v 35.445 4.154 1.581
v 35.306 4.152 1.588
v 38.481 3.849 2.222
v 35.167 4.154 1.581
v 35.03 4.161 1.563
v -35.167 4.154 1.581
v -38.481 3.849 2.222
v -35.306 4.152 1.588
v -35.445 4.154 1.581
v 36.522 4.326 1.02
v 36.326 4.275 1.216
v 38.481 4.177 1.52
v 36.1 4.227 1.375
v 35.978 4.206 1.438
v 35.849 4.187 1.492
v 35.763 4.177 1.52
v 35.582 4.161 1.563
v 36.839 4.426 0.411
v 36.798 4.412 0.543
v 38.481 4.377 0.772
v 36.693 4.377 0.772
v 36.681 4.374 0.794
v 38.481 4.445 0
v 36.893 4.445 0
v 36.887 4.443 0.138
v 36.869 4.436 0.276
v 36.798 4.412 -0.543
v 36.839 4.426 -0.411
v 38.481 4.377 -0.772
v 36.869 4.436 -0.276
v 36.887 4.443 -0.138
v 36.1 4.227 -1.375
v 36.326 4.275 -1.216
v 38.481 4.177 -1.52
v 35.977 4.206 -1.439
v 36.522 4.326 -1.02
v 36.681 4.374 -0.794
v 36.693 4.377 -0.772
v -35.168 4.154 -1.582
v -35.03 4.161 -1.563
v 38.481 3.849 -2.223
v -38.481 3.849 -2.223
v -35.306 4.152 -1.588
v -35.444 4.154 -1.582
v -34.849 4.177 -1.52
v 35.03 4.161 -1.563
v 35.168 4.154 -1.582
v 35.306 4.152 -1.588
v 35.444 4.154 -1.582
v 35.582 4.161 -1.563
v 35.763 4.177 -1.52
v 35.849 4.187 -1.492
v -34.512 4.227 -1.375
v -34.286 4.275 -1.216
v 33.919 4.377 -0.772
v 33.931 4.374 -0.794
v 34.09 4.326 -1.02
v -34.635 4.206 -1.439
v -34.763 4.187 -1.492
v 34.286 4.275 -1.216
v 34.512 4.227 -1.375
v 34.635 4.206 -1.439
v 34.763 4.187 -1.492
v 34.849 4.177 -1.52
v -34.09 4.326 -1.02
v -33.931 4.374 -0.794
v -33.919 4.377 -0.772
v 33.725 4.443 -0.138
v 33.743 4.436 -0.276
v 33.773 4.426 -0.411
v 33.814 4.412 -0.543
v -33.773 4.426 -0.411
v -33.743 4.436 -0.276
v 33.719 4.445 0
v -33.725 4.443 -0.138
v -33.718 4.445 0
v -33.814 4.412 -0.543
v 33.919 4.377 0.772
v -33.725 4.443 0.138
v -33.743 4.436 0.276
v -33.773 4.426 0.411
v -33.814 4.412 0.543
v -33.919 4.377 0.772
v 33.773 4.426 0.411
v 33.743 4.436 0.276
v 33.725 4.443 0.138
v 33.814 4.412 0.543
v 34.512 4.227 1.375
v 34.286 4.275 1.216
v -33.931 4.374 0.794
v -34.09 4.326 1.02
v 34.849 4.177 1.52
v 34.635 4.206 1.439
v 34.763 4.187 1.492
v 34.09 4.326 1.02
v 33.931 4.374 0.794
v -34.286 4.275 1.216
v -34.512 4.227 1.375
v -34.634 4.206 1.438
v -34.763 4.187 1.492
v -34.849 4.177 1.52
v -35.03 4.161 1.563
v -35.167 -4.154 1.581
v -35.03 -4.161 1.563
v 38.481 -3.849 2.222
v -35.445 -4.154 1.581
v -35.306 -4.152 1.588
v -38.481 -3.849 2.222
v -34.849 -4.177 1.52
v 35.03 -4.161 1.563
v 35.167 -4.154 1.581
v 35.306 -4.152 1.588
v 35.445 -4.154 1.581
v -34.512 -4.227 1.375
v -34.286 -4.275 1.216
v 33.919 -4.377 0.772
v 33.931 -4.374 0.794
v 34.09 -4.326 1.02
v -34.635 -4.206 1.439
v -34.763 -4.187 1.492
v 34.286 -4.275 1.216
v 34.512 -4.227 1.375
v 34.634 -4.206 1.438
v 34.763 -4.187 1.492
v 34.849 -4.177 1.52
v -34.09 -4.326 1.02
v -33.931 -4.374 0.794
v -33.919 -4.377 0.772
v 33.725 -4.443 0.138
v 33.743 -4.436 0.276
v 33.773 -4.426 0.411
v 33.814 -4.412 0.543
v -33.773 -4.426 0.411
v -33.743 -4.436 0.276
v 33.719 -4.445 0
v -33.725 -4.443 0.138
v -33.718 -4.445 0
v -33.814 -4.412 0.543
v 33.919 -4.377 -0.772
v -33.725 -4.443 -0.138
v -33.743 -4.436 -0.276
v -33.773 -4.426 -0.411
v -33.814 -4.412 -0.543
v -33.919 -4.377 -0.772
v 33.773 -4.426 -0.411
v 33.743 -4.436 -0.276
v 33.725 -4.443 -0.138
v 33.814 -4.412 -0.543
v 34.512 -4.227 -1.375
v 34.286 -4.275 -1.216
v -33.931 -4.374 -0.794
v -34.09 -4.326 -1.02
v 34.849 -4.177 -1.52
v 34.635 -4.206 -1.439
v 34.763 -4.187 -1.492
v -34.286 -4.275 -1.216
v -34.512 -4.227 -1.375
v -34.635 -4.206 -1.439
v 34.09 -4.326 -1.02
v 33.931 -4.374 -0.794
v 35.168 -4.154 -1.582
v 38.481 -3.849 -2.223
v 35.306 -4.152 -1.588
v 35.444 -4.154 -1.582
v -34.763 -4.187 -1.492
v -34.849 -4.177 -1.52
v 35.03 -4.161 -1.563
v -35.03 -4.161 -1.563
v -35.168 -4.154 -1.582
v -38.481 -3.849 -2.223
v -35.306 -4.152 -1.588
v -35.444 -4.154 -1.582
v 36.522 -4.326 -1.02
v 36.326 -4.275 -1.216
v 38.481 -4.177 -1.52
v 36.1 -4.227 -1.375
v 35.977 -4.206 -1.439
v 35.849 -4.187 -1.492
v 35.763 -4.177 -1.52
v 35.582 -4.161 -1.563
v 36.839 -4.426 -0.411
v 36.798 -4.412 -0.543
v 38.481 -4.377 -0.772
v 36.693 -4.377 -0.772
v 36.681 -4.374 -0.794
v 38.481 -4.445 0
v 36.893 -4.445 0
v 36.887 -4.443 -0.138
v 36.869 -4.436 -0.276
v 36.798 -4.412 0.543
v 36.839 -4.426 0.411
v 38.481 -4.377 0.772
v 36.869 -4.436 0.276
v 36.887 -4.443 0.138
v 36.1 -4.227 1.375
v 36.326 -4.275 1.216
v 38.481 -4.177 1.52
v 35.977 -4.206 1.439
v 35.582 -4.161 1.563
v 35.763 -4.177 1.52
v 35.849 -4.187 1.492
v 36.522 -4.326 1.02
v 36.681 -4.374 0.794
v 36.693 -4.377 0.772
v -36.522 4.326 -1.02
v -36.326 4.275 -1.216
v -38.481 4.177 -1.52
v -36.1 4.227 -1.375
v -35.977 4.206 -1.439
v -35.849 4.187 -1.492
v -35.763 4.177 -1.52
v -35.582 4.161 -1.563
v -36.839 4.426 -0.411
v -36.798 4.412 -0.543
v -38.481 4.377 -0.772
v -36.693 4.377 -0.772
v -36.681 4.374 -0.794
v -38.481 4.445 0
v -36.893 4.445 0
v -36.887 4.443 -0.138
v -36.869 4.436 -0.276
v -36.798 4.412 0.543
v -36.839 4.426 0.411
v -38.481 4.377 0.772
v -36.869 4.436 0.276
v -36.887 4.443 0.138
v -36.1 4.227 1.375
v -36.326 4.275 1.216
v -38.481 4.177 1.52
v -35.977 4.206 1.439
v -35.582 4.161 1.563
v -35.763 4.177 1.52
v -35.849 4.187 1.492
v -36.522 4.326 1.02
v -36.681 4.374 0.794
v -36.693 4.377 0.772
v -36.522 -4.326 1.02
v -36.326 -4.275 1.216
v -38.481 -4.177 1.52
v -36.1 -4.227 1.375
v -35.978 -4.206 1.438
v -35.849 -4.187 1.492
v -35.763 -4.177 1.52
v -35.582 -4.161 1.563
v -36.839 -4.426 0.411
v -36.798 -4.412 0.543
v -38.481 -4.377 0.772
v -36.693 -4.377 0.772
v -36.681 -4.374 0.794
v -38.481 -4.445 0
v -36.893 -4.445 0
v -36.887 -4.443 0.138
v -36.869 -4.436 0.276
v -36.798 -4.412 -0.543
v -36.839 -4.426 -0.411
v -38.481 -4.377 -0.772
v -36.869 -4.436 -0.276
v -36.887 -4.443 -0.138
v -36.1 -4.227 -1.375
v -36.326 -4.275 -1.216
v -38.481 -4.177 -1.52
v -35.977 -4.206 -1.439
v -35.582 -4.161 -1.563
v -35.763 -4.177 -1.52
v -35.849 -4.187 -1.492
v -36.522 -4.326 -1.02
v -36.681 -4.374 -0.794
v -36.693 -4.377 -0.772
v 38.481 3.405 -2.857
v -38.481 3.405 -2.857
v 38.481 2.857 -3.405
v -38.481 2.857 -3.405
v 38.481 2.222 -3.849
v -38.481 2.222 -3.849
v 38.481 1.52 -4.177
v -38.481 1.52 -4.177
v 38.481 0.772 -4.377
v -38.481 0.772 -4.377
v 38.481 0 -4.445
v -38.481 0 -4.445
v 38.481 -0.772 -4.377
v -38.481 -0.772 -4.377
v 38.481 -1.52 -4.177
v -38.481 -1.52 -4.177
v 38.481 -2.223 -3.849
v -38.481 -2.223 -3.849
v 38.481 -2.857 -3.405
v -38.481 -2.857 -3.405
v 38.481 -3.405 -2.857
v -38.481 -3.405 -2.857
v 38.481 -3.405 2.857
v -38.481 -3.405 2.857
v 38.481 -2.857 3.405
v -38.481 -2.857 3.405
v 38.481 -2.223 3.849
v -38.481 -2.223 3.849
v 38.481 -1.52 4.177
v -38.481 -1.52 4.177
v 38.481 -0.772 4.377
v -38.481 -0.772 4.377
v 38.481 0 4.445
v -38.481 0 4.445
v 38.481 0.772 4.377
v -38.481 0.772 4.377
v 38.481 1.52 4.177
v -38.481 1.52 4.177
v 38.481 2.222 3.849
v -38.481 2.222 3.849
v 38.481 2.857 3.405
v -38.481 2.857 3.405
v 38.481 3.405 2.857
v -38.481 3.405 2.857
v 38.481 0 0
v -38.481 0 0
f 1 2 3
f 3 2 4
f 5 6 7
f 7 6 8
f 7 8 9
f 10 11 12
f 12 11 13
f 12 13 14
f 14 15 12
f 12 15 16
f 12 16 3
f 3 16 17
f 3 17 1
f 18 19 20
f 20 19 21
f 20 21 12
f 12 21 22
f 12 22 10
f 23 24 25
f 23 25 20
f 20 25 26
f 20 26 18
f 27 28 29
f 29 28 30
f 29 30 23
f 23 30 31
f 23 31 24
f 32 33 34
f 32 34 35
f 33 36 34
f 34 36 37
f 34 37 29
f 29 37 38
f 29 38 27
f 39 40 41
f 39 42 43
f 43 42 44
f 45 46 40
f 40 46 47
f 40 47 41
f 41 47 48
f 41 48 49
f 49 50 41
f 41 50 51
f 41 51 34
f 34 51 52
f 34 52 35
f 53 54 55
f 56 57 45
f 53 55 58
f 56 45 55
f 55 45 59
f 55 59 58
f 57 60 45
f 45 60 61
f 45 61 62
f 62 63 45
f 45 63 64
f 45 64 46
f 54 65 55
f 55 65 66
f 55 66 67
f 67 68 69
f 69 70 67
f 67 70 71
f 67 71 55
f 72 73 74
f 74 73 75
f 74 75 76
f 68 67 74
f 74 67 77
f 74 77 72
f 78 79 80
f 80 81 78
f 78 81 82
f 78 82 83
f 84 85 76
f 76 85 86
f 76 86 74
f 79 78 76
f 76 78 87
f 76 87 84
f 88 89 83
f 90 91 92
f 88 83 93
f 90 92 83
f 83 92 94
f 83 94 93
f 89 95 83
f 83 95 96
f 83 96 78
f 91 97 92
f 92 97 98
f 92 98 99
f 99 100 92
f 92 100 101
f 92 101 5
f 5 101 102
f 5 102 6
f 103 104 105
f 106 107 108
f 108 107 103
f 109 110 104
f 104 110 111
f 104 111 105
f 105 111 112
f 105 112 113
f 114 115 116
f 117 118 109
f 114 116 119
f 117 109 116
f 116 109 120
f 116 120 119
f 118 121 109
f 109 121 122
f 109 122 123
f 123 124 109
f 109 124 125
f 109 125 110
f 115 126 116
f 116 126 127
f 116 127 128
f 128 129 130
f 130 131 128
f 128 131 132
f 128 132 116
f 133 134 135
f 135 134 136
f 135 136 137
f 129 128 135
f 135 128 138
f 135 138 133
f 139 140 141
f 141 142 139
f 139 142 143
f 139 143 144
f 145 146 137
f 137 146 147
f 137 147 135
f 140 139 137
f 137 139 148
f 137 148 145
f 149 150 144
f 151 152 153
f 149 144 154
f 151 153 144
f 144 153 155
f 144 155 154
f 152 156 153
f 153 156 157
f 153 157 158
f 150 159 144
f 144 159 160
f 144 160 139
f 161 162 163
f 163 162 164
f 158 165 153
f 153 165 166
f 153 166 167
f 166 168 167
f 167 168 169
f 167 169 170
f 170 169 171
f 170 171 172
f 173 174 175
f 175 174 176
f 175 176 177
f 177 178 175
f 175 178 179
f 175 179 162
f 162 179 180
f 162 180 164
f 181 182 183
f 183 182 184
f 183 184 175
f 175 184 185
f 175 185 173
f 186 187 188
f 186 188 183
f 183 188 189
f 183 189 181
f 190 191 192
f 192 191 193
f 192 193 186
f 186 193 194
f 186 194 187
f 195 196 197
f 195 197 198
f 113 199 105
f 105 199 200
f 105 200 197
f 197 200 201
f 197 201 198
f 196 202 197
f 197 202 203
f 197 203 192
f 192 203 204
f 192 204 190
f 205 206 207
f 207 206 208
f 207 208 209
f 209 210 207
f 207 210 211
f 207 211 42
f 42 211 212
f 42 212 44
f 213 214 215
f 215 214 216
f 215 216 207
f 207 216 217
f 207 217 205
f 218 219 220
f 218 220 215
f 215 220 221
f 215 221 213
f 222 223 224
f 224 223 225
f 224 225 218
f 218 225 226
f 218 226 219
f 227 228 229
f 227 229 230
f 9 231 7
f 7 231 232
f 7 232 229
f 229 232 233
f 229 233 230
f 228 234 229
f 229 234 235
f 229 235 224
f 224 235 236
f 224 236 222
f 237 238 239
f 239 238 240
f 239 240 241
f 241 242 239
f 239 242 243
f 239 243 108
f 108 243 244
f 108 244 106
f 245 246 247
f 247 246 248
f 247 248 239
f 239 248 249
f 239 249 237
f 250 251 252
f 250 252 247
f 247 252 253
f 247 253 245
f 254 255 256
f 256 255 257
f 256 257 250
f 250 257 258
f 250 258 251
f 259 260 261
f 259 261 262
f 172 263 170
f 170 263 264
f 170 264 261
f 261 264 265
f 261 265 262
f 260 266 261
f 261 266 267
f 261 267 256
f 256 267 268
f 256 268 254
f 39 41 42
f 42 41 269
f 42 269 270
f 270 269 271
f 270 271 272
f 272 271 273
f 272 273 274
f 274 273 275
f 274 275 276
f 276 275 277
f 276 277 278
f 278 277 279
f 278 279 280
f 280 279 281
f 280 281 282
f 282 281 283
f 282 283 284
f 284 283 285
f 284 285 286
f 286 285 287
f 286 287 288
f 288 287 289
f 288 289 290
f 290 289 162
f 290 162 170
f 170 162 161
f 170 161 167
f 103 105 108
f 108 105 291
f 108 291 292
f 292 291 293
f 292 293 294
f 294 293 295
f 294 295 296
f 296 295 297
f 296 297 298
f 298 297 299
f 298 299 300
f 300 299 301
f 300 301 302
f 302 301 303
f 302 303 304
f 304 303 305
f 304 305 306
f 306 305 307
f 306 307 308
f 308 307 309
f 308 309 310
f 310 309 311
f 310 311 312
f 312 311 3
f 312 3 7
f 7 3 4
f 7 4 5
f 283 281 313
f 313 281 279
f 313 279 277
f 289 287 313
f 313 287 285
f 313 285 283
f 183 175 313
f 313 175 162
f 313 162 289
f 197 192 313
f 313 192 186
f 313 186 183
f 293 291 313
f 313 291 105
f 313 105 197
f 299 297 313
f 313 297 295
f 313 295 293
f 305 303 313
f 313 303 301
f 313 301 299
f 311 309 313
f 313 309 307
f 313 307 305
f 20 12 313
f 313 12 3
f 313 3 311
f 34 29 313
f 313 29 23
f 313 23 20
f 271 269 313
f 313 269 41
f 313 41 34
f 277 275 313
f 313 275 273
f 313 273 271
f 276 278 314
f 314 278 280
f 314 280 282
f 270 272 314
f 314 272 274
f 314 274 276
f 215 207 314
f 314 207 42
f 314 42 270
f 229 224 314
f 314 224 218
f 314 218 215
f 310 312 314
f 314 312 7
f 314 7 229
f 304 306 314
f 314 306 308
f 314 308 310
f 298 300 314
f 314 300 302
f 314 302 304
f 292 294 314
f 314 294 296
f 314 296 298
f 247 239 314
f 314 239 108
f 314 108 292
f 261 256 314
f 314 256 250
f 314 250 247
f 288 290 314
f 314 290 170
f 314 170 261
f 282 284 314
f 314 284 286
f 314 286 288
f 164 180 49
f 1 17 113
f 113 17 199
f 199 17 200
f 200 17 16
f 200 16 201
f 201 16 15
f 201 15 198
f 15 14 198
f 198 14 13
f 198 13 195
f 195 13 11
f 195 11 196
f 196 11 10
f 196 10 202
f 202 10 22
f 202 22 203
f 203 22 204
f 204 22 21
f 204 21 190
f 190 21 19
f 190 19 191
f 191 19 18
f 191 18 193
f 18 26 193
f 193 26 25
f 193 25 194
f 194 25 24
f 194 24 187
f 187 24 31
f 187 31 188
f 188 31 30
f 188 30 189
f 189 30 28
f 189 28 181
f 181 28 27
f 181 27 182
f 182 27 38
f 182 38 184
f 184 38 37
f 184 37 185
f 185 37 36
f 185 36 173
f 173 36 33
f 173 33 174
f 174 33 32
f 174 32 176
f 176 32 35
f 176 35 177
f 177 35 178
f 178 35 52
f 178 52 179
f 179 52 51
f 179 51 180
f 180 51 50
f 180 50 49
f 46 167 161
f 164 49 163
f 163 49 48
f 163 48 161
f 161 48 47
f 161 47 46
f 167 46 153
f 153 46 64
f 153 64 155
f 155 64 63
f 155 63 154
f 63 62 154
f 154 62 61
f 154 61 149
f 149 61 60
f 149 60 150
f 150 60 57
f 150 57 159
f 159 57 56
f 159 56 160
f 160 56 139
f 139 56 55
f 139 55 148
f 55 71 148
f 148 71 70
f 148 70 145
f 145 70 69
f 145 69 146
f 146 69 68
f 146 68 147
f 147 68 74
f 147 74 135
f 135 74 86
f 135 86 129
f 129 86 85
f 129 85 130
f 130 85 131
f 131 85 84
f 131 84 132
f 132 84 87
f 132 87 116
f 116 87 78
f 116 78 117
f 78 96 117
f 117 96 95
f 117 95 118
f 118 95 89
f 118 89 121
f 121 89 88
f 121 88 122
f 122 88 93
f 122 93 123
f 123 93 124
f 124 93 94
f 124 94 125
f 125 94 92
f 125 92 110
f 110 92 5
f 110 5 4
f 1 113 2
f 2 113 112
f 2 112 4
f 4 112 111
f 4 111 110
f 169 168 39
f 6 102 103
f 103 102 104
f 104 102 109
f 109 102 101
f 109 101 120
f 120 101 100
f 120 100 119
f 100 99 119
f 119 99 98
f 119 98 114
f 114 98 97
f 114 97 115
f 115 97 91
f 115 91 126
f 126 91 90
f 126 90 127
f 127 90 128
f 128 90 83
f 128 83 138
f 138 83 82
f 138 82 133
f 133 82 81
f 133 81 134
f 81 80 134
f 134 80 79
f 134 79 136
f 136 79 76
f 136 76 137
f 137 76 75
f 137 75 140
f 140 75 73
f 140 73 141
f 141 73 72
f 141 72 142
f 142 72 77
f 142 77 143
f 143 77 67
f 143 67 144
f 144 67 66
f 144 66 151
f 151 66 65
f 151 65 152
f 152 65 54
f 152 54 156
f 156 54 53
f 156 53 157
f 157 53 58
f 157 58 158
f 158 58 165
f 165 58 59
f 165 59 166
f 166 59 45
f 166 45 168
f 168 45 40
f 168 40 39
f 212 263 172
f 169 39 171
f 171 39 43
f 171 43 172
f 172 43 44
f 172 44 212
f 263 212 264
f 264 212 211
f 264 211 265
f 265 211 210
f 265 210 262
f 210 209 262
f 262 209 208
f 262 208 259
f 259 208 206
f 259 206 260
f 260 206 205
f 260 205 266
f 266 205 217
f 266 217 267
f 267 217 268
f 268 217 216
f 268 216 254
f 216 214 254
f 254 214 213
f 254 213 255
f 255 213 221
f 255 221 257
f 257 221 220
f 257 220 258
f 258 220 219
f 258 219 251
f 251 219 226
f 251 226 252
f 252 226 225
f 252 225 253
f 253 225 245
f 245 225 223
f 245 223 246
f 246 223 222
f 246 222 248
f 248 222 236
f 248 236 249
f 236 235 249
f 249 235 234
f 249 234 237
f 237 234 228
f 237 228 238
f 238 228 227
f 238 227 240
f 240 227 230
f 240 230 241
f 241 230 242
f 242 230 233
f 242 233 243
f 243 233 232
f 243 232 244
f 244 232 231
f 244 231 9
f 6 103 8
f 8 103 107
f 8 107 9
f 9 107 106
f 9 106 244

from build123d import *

# Parameters (mm, degrees)
SKETCH1_R               = 4.445
BOSS_EXTRUDE1_DEPTH     = 38.481
SKETCH2_R               = 1.5875
CUT_EXTRUDE1_DEPTH      = 5.445
CUT_EXTRUDE1_DEPTH_BACK = 5.445


with BuildPart() as part:
    # Sketch1 → Boss-Extrude1 (new body, symmetric)
    with BuildSketch(Plane(origin=(0, 0, 0), x_dir=(0, 0, -1), z_dir=(1, 0, 0))):
        Circle(SKETCH1_R)
    extrude(amount=BOSS_EXTRUDE1_DEPTH, both=True)

    # Sketch2 → Cut-Extrude1 (cut, two sides)
    with BuildSketch(Plane(origin=(0, 0, 0), x_dir=(1, 0, 0), z_dir=(0, 1, 0))) as cut_extrude1_sk:
        with Locations((-35.306, 0)):
            Circle(SKETCH2_R)
        with Locations((35.306, 0)):
            Circle(SKETCH2_R)
    extrude(amount=CUT_EXTRUDE1_DEPTH, mode=Mode.SUBTRACT)
    extrude(cut_extrude1_sk.sketch, amount=-CUT_EXTRUDE1_DEPTH_BACK, mode=Mode.SUBTRACT)


solid = part.part
